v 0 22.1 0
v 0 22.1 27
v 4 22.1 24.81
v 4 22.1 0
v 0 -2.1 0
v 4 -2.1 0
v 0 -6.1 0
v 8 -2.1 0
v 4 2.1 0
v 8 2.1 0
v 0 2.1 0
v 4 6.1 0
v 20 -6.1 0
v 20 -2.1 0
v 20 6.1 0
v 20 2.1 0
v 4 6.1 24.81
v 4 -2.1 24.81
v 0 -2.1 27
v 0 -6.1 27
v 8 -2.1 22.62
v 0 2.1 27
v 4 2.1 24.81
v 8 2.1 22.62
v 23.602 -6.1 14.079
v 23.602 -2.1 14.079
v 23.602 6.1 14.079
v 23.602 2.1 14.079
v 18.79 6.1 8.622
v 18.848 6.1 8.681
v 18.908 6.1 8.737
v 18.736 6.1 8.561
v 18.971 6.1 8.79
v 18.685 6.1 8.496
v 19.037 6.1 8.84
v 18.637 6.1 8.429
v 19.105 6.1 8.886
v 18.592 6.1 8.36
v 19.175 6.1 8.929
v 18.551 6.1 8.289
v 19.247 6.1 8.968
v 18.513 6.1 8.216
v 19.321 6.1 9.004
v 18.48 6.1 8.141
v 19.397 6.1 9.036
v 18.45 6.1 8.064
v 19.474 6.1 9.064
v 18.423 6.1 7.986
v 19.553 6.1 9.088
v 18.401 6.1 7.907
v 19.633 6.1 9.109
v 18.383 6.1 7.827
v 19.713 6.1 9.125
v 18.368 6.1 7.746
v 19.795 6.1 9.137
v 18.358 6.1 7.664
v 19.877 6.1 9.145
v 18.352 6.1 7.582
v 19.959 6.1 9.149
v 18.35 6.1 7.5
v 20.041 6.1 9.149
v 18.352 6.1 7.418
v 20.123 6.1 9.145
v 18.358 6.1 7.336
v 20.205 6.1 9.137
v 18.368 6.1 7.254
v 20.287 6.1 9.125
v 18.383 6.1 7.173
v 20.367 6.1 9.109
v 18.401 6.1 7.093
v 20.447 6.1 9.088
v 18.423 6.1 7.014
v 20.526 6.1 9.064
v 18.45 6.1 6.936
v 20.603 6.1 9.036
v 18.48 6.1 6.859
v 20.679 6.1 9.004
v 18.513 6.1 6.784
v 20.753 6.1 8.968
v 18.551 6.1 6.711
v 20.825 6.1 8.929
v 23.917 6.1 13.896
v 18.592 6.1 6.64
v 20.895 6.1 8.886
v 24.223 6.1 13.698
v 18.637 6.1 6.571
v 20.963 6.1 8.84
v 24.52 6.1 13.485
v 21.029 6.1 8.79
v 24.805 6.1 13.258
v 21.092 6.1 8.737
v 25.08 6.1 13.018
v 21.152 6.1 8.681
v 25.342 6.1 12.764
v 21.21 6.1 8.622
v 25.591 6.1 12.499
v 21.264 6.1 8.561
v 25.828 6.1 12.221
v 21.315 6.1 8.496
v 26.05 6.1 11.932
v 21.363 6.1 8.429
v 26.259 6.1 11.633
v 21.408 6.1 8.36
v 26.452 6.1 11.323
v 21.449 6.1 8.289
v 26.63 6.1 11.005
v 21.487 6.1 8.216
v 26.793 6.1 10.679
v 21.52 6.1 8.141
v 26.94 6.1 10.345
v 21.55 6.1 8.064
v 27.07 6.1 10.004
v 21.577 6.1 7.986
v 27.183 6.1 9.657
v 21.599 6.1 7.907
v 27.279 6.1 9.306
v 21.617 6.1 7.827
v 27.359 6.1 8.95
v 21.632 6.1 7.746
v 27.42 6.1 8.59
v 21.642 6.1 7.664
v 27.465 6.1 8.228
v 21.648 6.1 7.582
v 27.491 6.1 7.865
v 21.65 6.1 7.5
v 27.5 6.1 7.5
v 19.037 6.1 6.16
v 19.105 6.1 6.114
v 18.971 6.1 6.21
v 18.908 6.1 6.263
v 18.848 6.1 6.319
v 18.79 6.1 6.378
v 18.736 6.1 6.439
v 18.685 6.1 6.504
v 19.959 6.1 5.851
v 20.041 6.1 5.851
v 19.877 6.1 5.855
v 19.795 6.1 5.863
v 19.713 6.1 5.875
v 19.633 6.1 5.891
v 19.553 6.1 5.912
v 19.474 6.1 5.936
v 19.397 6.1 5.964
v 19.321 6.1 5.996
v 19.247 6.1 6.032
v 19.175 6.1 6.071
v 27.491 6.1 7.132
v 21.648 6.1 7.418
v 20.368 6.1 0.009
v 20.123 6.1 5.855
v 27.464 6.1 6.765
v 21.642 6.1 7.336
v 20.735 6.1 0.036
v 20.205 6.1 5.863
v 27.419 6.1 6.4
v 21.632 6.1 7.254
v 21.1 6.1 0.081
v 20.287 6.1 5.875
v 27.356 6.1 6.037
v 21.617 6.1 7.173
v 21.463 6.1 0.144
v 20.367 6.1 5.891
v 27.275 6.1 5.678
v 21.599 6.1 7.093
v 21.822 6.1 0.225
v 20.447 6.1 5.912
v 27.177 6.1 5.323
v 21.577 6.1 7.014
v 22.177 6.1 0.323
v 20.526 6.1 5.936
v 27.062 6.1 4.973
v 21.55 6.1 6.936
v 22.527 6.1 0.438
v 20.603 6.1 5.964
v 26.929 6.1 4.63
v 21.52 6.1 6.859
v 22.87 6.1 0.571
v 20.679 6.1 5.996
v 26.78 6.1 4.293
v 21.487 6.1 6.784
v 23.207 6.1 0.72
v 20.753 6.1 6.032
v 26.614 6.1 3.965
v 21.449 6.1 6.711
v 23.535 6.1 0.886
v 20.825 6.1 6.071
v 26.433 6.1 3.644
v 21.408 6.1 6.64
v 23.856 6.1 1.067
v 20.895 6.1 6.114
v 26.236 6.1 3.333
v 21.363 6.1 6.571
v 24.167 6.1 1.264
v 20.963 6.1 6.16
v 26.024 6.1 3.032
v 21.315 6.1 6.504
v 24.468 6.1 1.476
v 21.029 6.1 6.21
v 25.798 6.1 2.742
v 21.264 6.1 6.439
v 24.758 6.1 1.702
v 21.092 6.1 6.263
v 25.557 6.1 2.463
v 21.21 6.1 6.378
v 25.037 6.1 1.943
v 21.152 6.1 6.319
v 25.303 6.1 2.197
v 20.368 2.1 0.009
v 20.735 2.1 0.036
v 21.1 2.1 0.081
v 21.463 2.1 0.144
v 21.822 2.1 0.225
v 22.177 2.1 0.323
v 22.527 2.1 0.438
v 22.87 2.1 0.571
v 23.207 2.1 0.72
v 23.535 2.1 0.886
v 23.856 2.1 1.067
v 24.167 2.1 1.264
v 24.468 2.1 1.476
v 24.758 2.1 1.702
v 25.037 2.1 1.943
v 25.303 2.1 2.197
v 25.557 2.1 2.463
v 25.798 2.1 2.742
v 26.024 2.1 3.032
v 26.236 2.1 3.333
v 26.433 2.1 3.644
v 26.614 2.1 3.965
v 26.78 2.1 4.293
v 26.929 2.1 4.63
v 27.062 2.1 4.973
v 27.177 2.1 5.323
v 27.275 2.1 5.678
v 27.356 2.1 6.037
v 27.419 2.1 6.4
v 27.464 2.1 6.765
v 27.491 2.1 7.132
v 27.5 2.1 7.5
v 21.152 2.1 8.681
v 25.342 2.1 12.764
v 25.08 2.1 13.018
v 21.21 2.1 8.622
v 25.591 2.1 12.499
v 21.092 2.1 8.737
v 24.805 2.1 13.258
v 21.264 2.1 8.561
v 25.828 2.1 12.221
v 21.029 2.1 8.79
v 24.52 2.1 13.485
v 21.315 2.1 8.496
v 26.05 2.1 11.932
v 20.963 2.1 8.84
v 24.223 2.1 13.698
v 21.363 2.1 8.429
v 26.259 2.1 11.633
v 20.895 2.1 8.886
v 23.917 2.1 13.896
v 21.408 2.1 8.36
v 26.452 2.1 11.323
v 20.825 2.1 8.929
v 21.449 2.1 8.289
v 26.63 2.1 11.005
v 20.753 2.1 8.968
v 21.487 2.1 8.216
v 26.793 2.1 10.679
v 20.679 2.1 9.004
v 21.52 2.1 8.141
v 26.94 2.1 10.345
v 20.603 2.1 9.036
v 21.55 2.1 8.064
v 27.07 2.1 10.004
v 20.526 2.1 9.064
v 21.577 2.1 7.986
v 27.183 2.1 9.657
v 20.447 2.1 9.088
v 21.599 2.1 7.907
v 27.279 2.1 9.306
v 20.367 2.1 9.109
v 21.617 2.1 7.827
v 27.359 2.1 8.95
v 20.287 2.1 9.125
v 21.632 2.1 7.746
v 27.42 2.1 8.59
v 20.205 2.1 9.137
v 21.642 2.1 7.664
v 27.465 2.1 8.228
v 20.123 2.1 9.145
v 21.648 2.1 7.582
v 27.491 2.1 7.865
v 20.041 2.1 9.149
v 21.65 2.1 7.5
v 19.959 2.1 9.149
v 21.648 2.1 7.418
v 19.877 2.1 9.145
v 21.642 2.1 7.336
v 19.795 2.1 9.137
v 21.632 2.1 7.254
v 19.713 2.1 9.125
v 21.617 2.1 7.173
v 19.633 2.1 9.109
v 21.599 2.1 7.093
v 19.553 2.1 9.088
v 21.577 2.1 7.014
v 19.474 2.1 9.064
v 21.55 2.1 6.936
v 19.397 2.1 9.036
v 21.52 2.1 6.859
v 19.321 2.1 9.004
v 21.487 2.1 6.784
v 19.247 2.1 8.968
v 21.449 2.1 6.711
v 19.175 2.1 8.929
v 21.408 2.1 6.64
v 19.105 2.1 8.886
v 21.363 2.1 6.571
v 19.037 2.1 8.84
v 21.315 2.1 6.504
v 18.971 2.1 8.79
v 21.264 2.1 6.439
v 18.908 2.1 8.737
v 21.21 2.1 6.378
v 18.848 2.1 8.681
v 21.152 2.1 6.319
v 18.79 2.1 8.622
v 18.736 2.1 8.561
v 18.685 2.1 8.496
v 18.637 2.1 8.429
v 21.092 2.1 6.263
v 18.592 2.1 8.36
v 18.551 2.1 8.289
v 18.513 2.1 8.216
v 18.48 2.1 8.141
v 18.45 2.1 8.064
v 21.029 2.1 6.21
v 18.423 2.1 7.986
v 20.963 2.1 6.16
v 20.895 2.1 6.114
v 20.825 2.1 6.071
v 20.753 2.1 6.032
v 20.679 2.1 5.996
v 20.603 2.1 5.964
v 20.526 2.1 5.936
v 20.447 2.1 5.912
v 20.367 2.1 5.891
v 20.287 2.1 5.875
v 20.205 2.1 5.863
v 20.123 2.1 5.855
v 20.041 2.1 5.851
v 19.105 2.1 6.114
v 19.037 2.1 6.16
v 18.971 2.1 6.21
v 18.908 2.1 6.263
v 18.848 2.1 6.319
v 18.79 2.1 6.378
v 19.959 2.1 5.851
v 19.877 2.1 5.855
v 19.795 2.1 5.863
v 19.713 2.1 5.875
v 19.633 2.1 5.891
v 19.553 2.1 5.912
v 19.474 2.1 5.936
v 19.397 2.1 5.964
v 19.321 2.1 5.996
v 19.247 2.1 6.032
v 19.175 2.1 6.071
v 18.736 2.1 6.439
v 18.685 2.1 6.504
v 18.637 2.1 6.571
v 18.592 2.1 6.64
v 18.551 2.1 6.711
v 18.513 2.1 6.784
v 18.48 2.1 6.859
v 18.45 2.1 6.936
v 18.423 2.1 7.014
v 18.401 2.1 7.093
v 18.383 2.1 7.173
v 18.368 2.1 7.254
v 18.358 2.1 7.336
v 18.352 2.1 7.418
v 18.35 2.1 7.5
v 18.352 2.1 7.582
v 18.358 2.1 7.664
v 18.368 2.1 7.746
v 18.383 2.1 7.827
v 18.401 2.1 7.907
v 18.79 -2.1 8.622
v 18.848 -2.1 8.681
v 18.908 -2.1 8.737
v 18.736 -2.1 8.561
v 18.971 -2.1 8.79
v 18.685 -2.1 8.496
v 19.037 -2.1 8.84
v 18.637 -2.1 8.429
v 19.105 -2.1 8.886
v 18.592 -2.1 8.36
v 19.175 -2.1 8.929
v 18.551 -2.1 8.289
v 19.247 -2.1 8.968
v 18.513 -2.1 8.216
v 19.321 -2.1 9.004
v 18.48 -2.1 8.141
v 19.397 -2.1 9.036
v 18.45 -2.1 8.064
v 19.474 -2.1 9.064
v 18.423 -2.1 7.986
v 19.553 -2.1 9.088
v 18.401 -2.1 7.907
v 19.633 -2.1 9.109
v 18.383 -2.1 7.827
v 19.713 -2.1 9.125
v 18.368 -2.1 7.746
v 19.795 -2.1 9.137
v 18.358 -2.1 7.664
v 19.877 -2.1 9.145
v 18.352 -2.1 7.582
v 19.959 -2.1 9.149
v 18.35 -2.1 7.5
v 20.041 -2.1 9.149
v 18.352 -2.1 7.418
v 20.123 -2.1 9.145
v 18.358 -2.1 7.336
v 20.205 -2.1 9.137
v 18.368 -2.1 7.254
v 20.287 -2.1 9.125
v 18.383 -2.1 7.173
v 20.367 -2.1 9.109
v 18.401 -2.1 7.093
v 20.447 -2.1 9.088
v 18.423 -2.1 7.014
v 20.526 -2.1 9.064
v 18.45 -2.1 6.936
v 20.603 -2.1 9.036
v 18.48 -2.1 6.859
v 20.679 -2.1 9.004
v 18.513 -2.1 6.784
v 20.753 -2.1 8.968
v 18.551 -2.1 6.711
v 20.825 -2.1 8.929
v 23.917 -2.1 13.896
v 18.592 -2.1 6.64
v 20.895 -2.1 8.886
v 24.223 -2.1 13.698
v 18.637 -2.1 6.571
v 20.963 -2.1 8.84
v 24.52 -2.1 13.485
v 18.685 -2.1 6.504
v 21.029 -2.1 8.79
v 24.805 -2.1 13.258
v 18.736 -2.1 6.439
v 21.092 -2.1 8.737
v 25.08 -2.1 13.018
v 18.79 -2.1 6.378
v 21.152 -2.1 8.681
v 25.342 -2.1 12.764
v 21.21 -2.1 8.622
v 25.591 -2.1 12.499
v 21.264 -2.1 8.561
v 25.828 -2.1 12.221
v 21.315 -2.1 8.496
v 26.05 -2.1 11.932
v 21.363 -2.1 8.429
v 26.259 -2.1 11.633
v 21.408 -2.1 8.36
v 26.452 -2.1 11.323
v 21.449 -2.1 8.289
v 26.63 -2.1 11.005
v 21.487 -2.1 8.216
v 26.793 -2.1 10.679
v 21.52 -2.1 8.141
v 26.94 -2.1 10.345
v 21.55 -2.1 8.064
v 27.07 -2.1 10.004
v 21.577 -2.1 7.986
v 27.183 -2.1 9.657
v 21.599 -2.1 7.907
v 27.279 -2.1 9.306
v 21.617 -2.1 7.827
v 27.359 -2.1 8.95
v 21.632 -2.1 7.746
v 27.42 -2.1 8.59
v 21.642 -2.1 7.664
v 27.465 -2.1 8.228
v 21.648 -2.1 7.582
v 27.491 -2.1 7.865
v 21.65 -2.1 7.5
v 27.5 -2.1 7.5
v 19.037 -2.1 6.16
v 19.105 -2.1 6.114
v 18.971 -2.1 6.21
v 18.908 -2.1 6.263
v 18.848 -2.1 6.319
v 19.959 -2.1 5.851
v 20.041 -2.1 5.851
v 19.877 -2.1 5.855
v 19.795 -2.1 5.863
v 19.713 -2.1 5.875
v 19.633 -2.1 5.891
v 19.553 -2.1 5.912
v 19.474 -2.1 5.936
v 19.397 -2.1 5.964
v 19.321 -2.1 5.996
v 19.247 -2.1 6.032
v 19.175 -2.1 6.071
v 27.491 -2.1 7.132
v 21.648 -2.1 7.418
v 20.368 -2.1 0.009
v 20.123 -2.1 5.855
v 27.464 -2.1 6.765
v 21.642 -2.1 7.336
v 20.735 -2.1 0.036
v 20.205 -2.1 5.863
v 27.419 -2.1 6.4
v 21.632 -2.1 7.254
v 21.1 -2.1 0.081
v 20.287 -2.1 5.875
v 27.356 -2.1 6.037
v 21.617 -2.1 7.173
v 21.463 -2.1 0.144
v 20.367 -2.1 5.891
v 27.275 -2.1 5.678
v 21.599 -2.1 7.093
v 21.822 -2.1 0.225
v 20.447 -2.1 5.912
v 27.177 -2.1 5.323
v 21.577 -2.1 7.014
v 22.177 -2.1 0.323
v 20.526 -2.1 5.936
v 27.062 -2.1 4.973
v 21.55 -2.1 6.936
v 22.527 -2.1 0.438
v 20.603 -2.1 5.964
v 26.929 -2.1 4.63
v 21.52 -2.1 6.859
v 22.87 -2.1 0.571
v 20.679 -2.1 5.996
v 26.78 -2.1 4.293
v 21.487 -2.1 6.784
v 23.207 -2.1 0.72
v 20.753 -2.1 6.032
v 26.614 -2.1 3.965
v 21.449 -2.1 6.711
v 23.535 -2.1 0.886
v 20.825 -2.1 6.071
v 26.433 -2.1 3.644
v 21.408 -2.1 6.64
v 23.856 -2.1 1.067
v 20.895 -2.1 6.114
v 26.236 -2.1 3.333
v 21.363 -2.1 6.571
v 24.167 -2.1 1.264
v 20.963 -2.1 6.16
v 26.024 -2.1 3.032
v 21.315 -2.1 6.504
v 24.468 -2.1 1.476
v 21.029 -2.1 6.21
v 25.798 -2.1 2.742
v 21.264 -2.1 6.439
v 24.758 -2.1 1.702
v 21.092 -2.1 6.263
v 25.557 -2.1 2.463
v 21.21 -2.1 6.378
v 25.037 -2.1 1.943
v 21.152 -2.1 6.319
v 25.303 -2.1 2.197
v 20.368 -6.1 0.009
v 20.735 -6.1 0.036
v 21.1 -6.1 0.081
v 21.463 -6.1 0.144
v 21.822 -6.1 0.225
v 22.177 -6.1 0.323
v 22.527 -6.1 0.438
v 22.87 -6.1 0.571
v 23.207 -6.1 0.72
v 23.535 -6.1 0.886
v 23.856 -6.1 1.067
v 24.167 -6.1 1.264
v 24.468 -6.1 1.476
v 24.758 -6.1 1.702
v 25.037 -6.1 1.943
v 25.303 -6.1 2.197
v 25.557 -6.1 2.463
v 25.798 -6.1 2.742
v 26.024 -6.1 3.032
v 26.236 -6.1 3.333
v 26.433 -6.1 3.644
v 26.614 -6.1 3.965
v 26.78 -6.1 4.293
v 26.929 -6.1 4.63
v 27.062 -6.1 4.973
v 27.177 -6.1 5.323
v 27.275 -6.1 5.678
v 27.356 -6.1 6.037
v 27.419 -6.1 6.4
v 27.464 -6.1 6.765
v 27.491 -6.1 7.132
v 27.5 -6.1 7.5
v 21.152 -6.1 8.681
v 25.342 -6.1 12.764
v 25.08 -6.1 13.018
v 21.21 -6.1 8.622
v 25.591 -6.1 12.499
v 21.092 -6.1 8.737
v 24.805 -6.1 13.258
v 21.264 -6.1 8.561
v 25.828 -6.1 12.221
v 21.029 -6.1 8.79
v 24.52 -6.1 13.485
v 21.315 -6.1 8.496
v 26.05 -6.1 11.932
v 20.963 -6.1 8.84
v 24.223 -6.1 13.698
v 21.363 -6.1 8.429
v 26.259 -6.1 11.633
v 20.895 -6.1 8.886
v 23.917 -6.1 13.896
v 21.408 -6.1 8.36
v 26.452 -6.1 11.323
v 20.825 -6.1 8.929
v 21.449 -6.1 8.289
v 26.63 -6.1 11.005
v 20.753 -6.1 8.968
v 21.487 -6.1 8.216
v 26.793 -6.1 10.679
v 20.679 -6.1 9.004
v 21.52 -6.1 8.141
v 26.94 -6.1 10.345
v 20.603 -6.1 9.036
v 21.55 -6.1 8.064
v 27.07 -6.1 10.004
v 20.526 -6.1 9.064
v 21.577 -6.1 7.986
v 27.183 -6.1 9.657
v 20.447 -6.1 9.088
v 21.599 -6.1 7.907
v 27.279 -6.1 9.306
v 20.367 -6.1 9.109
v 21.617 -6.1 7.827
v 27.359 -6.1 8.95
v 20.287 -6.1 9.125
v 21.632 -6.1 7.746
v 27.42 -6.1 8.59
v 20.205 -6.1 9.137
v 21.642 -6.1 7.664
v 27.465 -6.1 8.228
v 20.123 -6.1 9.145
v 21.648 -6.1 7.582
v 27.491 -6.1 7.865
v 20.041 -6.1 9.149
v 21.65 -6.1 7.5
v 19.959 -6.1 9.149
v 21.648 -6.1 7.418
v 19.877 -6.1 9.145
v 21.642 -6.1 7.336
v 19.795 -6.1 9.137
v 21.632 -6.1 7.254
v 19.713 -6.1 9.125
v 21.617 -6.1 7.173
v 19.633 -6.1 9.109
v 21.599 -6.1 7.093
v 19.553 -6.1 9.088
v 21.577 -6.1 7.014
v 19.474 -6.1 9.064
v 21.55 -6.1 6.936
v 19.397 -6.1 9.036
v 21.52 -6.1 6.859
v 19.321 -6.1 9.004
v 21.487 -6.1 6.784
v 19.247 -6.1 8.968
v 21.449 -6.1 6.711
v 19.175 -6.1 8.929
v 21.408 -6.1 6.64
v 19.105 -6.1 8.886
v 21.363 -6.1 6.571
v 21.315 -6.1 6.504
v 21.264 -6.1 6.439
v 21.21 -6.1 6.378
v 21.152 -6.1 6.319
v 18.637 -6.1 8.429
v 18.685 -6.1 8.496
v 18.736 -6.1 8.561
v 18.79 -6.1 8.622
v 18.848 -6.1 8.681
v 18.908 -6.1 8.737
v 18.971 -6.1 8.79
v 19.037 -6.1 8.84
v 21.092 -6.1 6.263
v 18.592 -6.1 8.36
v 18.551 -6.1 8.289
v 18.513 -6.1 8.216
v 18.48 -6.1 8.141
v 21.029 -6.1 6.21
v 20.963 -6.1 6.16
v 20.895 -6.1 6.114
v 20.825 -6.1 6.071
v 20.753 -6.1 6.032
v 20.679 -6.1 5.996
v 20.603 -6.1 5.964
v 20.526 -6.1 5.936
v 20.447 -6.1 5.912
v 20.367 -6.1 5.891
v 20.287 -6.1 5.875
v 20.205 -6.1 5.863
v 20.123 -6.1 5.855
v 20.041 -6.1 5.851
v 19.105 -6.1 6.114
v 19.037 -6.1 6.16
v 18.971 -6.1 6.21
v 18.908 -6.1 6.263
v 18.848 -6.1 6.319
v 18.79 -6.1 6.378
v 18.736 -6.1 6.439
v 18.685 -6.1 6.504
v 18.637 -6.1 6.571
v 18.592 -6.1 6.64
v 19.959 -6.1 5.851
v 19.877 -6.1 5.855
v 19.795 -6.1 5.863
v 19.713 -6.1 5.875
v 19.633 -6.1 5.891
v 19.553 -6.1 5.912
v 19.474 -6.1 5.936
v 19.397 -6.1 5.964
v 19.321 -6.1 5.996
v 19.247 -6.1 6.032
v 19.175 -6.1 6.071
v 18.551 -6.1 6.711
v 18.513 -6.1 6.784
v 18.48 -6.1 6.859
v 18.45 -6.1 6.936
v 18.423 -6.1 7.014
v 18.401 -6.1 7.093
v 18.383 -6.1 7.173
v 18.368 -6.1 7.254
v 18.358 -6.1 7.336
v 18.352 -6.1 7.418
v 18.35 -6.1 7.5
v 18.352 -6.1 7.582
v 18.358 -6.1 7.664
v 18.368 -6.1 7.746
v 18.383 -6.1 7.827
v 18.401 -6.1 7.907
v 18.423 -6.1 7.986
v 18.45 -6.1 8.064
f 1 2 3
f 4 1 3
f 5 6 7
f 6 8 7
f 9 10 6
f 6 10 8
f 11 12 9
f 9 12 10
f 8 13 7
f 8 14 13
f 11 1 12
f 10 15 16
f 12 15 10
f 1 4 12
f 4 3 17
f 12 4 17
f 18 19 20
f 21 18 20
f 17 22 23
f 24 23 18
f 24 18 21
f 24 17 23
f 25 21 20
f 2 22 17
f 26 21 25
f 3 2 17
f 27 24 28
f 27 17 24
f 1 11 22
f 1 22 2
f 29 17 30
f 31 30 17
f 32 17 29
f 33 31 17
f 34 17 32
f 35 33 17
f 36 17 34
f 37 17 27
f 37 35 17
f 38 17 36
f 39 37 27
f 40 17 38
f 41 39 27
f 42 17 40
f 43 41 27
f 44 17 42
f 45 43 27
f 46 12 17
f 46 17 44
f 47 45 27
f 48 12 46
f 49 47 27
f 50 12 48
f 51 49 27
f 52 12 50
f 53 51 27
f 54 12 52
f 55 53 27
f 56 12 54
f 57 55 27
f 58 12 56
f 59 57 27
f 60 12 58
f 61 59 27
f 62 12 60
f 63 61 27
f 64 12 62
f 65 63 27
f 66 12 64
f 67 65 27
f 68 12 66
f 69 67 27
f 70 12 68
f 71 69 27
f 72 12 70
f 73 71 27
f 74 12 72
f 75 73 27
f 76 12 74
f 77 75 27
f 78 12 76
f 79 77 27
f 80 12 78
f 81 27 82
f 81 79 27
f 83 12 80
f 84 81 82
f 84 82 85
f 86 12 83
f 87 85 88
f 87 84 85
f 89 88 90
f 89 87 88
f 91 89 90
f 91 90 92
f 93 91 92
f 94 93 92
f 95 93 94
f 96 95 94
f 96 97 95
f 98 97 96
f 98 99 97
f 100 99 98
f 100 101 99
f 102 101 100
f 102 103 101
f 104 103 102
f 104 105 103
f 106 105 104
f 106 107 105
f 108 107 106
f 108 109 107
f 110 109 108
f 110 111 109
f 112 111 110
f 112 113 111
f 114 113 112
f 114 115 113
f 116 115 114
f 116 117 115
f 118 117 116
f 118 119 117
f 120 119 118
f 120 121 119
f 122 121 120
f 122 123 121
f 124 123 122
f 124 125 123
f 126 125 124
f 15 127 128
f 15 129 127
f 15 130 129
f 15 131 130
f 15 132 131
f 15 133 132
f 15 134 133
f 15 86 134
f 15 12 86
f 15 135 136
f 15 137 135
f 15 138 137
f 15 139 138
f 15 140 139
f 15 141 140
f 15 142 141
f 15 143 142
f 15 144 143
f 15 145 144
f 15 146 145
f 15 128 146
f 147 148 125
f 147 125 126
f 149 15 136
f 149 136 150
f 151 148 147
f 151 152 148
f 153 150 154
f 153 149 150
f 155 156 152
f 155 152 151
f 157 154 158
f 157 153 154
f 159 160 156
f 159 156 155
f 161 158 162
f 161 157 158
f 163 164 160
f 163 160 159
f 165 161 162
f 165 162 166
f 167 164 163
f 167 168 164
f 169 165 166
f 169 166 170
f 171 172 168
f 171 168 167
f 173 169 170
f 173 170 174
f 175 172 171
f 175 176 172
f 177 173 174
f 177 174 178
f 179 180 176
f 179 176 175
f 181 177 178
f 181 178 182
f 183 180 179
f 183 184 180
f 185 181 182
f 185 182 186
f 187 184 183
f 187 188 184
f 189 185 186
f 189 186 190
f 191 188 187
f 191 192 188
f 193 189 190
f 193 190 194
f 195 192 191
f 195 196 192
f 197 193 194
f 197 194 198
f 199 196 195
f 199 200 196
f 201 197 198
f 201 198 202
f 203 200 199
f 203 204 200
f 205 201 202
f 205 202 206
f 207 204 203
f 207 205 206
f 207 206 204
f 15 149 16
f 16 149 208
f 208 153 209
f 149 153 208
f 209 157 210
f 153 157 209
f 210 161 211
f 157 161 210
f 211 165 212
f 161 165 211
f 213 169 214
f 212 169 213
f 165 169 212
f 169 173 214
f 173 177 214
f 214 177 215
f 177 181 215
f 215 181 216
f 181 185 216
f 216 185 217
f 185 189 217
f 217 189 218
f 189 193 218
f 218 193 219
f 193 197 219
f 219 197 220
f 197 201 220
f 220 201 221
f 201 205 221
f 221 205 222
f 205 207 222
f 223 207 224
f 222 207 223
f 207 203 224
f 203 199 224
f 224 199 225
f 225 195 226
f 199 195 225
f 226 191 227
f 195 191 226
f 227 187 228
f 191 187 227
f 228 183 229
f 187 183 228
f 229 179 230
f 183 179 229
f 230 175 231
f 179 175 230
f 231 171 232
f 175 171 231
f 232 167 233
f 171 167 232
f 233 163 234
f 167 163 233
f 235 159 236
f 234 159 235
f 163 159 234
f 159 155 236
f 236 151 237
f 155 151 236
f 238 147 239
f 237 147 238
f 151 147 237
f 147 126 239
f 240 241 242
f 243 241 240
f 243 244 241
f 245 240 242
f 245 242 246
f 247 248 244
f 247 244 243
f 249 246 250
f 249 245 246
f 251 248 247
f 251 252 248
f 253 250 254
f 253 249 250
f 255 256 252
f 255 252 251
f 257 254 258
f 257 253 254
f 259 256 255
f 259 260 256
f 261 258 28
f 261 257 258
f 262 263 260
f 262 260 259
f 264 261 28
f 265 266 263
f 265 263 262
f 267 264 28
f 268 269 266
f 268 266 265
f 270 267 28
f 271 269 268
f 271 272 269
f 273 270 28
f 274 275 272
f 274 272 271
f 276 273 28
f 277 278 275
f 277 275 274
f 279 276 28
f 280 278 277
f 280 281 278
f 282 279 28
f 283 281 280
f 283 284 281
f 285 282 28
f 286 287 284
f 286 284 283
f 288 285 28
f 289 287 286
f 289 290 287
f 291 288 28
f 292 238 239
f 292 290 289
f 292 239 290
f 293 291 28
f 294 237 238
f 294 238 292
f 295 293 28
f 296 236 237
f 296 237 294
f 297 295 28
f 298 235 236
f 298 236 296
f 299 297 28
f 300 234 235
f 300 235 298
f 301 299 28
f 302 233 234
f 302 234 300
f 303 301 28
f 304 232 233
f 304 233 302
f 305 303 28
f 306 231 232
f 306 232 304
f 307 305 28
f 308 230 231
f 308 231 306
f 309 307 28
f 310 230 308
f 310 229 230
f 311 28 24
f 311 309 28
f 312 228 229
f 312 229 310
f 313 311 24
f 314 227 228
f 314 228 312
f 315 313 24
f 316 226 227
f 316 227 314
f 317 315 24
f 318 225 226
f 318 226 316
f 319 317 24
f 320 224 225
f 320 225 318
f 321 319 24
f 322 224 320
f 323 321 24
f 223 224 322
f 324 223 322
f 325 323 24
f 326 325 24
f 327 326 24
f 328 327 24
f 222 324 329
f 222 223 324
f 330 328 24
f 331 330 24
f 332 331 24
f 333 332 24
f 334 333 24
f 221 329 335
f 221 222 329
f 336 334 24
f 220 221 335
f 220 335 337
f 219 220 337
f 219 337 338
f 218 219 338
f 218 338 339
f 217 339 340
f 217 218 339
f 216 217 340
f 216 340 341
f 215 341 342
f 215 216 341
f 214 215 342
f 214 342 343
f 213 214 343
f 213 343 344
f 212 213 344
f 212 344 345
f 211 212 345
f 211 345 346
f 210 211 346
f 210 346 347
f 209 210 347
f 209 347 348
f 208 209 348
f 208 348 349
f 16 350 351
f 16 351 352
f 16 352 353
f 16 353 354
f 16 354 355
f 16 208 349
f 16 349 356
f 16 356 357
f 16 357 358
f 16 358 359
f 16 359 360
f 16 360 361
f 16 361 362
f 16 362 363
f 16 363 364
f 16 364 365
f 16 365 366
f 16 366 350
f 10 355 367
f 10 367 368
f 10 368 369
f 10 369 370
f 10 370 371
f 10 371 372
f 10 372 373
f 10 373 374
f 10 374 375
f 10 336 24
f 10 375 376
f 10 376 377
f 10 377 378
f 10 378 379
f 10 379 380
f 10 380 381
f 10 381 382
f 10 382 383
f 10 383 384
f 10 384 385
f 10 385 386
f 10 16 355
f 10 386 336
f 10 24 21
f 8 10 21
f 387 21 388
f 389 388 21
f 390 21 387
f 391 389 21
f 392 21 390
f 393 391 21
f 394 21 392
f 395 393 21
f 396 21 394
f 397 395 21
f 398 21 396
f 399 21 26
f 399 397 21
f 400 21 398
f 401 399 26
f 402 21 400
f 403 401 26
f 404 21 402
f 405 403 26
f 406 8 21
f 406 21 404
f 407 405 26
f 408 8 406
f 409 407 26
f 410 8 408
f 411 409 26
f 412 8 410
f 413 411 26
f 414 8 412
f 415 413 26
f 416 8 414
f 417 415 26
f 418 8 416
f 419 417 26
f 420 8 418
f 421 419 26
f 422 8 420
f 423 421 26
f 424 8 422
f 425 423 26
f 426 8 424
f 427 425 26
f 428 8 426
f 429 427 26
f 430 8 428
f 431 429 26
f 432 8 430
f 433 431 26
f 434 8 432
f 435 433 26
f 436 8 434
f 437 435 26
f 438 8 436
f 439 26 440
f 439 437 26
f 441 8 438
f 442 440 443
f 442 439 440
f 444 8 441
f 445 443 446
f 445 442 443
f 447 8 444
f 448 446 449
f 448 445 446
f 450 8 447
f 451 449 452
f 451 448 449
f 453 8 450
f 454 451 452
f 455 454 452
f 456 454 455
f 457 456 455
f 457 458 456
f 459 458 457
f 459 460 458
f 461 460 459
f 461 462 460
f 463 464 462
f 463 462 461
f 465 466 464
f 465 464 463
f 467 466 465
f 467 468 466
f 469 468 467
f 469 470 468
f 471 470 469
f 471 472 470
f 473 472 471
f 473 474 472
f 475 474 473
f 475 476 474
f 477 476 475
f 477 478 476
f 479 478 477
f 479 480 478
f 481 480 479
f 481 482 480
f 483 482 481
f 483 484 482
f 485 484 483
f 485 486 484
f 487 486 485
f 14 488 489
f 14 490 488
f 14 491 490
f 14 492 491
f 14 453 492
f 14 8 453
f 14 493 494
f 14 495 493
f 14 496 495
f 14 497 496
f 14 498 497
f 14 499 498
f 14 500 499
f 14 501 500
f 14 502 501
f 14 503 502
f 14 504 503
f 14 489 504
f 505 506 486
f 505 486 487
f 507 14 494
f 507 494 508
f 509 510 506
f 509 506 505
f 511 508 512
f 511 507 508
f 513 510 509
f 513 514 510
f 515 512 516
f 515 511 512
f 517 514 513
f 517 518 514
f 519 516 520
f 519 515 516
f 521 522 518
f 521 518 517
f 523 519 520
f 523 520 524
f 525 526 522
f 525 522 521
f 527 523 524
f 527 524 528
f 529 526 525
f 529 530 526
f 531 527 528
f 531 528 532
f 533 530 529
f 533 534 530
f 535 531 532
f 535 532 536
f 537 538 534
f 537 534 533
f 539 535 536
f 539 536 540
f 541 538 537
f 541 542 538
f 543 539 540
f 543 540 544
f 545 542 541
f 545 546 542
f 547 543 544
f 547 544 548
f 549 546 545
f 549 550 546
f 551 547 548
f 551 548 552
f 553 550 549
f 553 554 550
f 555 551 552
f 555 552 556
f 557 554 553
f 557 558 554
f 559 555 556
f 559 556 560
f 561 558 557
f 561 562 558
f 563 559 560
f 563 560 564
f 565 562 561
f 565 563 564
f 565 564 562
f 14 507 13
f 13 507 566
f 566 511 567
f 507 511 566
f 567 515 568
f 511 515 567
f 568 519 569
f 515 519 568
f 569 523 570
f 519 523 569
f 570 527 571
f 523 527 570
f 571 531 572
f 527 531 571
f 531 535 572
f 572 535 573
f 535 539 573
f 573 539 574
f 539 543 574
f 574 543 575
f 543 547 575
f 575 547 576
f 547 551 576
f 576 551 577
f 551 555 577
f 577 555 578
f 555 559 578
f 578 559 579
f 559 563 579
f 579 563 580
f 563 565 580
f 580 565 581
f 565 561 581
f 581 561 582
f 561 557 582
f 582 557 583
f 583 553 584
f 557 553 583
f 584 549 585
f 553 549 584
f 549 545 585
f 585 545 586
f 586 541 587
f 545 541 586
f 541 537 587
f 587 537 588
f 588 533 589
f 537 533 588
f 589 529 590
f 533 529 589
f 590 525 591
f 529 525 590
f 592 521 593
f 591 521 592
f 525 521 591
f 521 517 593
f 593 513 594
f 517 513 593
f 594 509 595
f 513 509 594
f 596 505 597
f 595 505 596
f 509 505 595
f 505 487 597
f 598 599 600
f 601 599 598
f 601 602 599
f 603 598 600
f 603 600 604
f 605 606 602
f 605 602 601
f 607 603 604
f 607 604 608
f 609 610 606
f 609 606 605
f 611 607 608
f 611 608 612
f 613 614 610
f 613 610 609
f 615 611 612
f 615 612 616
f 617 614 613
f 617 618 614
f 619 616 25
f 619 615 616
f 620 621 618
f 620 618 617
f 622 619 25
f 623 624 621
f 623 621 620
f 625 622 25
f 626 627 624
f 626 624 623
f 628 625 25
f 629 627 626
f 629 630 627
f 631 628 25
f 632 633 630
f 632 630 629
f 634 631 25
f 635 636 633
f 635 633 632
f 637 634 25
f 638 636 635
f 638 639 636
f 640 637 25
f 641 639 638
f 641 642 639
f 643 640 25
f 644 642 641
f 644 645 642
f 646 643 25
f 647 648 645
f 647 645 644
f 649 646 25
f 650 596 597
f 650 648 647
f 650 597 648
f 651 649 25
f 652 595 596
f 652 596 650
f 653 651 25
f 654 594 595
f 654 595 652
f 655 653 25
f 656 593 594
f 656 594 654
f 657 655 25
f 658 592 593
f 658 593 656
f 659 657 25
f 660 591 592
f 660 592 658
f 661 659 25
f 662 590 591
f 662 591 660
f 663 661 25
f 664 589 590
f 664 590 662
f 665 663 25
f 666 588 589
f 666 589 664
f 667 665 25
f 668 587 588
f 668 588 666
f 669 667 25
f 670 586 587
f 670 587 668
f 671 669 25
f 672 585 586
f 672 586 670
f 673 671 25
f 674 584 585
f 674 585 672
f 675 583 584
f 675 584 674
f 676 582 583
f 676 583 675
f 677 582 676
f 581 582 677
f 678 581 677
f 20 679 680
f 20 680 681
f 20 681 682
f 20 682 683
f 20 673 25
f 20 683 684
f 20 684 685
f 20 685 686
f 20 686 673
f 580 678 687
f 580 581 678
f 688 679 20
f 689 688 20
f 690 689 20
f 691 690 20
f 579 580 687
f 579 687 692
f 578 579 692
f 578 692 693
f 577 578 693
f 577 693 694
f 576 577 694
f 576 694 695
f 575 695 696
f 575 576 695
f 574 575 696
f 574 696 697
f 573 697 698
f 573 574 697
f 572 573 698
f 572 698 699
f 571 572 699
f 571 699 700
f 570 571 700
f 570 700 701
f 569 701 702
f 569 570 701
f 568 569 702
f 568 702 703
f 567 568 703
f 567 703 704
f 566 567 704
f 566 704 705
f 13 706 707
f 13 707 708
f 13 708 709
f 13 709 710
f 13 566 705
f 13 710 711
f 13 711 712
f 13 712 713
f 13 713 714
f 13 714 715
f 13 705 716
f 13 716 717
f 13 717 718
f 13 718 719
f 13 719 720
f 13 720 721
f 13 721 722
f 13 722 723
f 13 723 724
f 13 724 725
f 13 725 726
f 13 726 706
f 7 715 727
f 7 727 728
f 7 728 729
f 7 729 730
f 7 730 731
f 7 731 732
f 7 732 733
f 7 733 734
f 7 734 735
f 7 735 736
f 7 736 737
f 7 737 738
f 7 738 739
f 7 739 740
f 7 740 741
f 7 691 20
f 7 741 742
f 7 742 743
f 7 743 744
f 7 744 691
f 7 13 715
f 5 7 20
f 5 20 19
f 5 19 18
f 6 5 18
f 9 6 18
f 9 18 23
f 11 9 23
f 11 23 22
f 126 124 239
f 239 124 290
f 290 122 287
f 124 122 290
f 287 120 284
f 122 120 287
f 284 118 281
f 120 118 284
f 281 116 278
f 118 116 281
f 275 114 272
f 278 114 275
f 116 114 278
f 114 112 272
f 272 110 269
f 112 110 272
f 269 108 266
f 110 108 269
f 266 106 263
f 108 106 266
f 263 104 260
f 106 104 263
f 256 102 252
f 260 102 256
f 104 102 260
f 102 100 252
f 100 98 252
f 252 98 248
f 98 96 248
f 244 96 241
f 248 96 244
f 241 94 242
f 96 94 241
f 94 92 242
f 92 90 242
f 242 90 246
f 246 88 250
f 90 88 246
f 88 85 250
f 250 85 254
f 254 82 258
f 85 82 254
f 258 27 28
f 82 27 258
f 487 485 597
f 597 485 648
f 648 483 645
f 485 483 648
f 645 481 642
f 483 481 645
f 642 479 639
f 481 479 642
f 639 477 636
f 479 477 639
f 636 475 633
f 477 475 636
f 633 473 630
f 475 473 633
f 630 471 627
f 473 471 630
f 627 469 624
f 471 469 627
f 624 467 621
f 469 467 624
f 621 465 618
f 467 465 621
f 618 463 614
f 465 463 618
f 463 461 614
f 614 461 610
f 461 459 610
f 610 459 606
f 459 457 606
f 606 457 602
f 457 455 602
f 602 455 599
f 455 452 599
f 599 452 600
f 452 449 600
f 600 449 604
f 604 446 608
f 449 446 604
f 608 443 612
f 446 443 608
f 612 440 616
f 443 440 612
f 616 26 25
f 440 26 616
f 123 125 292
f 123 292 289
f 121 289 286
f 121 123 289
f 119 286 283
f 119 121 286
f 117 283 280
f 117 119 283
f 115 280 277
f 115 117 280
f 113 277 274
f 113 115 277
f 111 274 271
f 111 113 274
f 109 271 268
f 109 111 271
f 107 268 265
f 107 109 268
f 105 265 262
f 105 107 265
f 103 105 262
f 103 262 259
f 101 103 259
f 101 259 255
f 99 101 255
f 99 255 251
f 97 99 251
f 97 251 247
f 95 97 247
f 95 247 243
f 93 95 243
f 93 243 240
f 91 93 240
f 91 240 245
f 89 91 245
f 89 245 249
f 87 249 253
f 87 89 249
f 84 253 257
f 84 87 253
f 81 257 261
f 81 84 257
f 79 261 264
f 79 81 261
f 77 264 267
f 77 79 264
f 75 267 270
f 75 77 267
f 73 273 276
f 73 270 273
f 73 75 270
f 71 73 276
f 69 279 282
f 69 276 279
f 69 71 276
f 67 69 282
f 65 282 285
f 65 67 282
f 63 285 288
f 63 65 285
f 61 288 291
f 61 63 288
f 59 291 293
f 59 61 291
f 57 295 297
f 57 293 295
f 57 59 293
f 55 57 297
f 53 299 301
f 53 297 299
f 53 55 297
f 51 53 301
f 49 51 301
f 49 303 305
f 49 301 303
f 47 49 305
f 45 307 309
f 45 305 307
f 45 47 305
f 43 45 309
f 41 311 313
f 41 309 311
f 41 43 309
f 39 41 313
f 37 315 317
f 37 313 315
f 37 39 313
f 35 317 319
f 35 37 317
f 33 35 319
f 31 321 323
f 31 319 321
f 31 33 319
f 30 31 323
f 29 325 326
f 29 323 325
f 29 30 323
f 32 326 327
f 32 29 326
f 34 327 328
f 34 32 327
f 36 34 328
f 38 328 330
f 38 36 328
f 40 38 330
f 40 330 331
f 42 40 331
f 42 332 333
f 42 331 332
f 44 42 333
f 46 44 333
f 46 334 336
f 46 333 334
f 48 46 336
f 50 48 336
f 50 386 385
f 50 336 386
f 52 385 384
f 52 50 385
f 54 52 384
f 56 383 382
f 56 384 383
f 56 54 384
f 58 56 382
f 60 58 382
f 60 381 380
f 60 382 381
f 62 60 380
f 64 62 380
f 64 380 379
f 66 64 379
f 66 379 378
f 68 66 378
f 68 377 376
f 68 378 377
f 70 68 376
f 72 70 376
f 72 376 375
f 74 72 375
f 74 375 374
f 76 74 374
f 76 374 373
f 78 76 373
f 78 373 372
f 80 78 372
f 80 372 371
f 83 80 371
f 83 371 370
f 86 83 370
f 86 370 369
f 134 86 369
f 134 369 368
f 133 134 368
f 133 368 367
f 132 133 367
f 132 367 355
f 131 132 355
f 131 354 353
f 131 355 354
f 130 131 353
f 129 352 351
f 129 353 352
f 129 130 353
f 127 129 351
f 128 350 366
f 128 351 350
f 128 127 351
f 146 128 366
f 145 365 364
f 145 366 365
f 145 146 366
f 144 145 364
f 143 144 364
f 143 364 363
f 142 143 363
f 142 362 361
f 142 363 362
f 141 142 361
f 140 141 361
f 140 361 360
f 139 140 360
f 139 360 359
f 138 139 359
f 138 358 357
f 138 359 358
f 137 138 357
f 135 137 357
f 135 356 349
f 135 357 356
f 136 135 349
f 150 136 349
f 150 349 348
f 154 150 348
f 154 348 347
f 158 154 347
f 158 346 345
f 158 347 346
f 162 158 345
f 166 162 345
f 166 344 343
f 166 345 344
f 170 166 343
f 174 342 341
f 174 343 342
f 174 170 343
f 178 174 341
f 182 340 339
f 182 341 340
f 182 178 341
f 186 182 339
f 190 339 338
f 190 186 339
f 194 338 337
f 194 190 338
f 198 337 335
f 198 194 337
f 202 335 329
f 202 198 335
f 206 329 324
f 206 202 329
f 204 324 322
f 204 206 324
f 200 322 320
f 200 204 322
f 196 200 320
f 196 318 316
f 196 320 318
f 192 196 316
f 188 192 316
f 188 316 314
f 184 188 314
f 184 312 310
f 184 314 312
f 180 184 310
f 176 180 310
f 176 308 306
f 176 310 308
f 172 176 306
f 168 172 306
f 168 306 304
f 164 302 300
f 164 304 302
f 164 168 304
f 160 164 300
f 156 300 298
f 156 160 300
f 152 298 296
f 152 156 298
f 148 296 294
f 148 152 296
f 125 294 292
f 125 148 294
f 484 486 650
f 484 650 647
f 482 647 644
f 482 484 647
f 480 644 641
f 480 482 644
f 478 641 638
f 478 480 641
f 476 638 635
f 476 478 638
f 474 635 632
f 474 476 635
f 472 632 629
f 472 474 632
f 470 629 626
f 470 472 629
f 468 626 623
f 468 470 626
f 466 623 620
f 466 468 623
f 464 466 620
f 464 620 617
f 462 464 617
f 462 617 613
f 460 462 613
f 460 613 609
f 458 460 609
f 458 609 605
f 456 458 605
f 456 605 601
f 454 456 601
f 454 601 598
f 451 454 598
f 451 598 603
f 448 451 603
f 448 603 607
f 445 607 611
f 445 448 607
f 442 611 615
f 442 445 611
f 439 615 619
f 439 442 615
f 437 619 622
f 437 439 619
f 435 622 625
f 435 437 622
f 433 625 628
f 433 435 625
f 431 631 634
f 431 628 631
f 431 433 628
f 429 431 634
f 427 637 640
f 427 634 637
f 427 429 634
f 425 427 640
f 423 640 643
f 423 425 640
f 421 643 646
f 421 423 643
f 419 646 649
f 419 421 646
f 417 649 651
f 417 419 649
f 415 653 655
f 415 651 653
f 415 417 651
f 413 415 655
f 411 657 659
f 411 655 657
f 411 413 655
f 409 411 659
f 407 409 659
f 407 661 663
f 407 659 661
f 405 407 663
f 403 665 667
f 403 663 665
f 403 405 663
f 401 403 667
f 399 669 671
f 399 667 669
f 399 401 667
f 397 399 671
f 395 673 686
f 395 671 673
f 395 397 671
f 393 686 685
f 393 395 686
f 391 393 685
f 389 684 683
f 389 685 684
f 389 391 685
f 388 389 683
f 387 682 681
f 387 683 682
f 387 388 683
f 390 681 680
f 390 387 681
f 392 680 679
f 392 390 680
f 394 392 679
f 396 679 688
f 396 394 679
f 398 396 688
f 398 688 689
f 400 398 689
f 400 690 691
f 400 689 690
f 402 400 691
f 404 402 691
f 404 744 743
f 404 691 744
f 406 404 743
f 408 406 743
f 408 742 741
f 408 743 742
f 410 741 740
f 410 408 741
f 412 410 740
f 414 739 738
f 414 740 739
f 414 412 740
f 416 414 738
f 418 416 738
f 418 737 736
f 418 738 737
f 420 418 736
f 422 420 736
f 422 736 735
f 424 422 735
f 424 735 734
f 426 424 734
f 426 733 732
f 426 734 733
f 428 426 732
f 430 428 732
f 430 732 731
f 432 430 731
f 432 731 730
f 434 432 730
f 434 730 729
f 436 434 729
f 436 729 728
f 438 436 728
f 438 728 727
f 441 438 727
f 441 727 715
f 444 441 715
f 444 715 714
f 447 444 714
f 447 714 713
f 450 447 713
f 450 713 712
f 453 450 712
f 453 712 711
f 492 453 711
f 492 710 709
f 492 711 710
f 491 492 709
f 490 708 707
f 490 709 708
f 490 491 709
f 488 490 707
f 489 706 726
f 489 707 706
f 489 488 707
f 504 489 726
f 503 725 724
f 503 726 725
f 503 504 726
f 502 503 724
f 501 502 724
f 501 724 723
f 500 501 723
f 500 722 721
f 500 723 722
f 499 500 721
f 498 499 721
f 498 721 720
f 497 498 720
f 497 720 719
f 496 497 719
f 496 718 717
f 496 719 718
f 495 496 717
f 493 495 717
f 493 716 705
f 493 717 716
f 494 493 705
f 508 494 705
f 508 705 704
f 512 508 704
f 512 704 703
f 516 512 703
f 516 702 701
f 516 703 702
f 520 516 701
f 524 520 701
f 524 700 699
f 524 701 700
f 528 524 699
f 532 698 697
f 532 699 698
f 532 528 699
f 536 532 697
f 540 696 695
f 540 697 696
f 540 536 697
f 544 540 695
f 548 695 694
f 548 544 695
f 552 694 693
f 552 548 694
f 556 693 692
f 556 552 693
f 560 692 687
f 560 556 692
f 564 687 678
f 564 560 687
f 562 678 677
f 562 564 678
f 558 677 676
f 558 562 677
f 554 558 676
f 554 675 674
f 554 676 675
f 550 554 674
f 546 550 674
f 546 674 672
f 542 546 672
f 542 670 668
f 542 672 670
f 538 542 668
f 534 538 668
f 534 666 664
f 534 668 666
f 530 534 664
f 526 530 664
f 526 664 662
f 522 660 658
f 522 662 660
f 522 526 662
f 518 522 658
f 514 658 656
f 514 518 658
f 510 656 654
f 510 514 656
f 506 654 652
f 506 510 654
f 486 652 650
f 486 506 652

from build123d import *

# Parameters (mm, degrees)
SKETCH001_R   = 1.65
EXTRUDE_DEPTH = 40
PAD_DEPTH     = 27


with BuildPart() as extrude_body:
    # Sketch001 → Extrude (new body, symmetric)
    with BuildSketch(Plane.XZ):
        with BuildLine():
            ThreePointArc((20, 0), (27.266003, 5.641182), (23.601647, 14.078612))
            Line((0, 27), (23.601647, 14.078612))
            Line((0, 0), (0, 27))
            Line((0, 0), (20, 0))
        make_face()
        with Locations((20, 7.5)):
            Circle(SKETCH001_R, mode=Mode.SUBTRACT)
    extrude(amount=EXTRUDE_DEPTH, both=True)


with BuildPart() as common:
    # Sketch → Pad (new body)
    with BuildSketch(Plane.XY):
        Polygon((0, 22.1), (4, 22.1), (4, 6.1), (27.5, 6.1), (27.5, 2.1), (8, 2.1), (8, -2.1), (27.5, -2.1), (27.5, -6.1), (0, -6.1), (0, -2.1), (4, -2.1), (4, 2.1), (0, 2.1), align=None)
    extrude(amount=PAD_DEPTH)

    # Common: intersect Extrude body
    add(extrude_body.part, mode=Mode.INTERSECT)


solid = common.part
